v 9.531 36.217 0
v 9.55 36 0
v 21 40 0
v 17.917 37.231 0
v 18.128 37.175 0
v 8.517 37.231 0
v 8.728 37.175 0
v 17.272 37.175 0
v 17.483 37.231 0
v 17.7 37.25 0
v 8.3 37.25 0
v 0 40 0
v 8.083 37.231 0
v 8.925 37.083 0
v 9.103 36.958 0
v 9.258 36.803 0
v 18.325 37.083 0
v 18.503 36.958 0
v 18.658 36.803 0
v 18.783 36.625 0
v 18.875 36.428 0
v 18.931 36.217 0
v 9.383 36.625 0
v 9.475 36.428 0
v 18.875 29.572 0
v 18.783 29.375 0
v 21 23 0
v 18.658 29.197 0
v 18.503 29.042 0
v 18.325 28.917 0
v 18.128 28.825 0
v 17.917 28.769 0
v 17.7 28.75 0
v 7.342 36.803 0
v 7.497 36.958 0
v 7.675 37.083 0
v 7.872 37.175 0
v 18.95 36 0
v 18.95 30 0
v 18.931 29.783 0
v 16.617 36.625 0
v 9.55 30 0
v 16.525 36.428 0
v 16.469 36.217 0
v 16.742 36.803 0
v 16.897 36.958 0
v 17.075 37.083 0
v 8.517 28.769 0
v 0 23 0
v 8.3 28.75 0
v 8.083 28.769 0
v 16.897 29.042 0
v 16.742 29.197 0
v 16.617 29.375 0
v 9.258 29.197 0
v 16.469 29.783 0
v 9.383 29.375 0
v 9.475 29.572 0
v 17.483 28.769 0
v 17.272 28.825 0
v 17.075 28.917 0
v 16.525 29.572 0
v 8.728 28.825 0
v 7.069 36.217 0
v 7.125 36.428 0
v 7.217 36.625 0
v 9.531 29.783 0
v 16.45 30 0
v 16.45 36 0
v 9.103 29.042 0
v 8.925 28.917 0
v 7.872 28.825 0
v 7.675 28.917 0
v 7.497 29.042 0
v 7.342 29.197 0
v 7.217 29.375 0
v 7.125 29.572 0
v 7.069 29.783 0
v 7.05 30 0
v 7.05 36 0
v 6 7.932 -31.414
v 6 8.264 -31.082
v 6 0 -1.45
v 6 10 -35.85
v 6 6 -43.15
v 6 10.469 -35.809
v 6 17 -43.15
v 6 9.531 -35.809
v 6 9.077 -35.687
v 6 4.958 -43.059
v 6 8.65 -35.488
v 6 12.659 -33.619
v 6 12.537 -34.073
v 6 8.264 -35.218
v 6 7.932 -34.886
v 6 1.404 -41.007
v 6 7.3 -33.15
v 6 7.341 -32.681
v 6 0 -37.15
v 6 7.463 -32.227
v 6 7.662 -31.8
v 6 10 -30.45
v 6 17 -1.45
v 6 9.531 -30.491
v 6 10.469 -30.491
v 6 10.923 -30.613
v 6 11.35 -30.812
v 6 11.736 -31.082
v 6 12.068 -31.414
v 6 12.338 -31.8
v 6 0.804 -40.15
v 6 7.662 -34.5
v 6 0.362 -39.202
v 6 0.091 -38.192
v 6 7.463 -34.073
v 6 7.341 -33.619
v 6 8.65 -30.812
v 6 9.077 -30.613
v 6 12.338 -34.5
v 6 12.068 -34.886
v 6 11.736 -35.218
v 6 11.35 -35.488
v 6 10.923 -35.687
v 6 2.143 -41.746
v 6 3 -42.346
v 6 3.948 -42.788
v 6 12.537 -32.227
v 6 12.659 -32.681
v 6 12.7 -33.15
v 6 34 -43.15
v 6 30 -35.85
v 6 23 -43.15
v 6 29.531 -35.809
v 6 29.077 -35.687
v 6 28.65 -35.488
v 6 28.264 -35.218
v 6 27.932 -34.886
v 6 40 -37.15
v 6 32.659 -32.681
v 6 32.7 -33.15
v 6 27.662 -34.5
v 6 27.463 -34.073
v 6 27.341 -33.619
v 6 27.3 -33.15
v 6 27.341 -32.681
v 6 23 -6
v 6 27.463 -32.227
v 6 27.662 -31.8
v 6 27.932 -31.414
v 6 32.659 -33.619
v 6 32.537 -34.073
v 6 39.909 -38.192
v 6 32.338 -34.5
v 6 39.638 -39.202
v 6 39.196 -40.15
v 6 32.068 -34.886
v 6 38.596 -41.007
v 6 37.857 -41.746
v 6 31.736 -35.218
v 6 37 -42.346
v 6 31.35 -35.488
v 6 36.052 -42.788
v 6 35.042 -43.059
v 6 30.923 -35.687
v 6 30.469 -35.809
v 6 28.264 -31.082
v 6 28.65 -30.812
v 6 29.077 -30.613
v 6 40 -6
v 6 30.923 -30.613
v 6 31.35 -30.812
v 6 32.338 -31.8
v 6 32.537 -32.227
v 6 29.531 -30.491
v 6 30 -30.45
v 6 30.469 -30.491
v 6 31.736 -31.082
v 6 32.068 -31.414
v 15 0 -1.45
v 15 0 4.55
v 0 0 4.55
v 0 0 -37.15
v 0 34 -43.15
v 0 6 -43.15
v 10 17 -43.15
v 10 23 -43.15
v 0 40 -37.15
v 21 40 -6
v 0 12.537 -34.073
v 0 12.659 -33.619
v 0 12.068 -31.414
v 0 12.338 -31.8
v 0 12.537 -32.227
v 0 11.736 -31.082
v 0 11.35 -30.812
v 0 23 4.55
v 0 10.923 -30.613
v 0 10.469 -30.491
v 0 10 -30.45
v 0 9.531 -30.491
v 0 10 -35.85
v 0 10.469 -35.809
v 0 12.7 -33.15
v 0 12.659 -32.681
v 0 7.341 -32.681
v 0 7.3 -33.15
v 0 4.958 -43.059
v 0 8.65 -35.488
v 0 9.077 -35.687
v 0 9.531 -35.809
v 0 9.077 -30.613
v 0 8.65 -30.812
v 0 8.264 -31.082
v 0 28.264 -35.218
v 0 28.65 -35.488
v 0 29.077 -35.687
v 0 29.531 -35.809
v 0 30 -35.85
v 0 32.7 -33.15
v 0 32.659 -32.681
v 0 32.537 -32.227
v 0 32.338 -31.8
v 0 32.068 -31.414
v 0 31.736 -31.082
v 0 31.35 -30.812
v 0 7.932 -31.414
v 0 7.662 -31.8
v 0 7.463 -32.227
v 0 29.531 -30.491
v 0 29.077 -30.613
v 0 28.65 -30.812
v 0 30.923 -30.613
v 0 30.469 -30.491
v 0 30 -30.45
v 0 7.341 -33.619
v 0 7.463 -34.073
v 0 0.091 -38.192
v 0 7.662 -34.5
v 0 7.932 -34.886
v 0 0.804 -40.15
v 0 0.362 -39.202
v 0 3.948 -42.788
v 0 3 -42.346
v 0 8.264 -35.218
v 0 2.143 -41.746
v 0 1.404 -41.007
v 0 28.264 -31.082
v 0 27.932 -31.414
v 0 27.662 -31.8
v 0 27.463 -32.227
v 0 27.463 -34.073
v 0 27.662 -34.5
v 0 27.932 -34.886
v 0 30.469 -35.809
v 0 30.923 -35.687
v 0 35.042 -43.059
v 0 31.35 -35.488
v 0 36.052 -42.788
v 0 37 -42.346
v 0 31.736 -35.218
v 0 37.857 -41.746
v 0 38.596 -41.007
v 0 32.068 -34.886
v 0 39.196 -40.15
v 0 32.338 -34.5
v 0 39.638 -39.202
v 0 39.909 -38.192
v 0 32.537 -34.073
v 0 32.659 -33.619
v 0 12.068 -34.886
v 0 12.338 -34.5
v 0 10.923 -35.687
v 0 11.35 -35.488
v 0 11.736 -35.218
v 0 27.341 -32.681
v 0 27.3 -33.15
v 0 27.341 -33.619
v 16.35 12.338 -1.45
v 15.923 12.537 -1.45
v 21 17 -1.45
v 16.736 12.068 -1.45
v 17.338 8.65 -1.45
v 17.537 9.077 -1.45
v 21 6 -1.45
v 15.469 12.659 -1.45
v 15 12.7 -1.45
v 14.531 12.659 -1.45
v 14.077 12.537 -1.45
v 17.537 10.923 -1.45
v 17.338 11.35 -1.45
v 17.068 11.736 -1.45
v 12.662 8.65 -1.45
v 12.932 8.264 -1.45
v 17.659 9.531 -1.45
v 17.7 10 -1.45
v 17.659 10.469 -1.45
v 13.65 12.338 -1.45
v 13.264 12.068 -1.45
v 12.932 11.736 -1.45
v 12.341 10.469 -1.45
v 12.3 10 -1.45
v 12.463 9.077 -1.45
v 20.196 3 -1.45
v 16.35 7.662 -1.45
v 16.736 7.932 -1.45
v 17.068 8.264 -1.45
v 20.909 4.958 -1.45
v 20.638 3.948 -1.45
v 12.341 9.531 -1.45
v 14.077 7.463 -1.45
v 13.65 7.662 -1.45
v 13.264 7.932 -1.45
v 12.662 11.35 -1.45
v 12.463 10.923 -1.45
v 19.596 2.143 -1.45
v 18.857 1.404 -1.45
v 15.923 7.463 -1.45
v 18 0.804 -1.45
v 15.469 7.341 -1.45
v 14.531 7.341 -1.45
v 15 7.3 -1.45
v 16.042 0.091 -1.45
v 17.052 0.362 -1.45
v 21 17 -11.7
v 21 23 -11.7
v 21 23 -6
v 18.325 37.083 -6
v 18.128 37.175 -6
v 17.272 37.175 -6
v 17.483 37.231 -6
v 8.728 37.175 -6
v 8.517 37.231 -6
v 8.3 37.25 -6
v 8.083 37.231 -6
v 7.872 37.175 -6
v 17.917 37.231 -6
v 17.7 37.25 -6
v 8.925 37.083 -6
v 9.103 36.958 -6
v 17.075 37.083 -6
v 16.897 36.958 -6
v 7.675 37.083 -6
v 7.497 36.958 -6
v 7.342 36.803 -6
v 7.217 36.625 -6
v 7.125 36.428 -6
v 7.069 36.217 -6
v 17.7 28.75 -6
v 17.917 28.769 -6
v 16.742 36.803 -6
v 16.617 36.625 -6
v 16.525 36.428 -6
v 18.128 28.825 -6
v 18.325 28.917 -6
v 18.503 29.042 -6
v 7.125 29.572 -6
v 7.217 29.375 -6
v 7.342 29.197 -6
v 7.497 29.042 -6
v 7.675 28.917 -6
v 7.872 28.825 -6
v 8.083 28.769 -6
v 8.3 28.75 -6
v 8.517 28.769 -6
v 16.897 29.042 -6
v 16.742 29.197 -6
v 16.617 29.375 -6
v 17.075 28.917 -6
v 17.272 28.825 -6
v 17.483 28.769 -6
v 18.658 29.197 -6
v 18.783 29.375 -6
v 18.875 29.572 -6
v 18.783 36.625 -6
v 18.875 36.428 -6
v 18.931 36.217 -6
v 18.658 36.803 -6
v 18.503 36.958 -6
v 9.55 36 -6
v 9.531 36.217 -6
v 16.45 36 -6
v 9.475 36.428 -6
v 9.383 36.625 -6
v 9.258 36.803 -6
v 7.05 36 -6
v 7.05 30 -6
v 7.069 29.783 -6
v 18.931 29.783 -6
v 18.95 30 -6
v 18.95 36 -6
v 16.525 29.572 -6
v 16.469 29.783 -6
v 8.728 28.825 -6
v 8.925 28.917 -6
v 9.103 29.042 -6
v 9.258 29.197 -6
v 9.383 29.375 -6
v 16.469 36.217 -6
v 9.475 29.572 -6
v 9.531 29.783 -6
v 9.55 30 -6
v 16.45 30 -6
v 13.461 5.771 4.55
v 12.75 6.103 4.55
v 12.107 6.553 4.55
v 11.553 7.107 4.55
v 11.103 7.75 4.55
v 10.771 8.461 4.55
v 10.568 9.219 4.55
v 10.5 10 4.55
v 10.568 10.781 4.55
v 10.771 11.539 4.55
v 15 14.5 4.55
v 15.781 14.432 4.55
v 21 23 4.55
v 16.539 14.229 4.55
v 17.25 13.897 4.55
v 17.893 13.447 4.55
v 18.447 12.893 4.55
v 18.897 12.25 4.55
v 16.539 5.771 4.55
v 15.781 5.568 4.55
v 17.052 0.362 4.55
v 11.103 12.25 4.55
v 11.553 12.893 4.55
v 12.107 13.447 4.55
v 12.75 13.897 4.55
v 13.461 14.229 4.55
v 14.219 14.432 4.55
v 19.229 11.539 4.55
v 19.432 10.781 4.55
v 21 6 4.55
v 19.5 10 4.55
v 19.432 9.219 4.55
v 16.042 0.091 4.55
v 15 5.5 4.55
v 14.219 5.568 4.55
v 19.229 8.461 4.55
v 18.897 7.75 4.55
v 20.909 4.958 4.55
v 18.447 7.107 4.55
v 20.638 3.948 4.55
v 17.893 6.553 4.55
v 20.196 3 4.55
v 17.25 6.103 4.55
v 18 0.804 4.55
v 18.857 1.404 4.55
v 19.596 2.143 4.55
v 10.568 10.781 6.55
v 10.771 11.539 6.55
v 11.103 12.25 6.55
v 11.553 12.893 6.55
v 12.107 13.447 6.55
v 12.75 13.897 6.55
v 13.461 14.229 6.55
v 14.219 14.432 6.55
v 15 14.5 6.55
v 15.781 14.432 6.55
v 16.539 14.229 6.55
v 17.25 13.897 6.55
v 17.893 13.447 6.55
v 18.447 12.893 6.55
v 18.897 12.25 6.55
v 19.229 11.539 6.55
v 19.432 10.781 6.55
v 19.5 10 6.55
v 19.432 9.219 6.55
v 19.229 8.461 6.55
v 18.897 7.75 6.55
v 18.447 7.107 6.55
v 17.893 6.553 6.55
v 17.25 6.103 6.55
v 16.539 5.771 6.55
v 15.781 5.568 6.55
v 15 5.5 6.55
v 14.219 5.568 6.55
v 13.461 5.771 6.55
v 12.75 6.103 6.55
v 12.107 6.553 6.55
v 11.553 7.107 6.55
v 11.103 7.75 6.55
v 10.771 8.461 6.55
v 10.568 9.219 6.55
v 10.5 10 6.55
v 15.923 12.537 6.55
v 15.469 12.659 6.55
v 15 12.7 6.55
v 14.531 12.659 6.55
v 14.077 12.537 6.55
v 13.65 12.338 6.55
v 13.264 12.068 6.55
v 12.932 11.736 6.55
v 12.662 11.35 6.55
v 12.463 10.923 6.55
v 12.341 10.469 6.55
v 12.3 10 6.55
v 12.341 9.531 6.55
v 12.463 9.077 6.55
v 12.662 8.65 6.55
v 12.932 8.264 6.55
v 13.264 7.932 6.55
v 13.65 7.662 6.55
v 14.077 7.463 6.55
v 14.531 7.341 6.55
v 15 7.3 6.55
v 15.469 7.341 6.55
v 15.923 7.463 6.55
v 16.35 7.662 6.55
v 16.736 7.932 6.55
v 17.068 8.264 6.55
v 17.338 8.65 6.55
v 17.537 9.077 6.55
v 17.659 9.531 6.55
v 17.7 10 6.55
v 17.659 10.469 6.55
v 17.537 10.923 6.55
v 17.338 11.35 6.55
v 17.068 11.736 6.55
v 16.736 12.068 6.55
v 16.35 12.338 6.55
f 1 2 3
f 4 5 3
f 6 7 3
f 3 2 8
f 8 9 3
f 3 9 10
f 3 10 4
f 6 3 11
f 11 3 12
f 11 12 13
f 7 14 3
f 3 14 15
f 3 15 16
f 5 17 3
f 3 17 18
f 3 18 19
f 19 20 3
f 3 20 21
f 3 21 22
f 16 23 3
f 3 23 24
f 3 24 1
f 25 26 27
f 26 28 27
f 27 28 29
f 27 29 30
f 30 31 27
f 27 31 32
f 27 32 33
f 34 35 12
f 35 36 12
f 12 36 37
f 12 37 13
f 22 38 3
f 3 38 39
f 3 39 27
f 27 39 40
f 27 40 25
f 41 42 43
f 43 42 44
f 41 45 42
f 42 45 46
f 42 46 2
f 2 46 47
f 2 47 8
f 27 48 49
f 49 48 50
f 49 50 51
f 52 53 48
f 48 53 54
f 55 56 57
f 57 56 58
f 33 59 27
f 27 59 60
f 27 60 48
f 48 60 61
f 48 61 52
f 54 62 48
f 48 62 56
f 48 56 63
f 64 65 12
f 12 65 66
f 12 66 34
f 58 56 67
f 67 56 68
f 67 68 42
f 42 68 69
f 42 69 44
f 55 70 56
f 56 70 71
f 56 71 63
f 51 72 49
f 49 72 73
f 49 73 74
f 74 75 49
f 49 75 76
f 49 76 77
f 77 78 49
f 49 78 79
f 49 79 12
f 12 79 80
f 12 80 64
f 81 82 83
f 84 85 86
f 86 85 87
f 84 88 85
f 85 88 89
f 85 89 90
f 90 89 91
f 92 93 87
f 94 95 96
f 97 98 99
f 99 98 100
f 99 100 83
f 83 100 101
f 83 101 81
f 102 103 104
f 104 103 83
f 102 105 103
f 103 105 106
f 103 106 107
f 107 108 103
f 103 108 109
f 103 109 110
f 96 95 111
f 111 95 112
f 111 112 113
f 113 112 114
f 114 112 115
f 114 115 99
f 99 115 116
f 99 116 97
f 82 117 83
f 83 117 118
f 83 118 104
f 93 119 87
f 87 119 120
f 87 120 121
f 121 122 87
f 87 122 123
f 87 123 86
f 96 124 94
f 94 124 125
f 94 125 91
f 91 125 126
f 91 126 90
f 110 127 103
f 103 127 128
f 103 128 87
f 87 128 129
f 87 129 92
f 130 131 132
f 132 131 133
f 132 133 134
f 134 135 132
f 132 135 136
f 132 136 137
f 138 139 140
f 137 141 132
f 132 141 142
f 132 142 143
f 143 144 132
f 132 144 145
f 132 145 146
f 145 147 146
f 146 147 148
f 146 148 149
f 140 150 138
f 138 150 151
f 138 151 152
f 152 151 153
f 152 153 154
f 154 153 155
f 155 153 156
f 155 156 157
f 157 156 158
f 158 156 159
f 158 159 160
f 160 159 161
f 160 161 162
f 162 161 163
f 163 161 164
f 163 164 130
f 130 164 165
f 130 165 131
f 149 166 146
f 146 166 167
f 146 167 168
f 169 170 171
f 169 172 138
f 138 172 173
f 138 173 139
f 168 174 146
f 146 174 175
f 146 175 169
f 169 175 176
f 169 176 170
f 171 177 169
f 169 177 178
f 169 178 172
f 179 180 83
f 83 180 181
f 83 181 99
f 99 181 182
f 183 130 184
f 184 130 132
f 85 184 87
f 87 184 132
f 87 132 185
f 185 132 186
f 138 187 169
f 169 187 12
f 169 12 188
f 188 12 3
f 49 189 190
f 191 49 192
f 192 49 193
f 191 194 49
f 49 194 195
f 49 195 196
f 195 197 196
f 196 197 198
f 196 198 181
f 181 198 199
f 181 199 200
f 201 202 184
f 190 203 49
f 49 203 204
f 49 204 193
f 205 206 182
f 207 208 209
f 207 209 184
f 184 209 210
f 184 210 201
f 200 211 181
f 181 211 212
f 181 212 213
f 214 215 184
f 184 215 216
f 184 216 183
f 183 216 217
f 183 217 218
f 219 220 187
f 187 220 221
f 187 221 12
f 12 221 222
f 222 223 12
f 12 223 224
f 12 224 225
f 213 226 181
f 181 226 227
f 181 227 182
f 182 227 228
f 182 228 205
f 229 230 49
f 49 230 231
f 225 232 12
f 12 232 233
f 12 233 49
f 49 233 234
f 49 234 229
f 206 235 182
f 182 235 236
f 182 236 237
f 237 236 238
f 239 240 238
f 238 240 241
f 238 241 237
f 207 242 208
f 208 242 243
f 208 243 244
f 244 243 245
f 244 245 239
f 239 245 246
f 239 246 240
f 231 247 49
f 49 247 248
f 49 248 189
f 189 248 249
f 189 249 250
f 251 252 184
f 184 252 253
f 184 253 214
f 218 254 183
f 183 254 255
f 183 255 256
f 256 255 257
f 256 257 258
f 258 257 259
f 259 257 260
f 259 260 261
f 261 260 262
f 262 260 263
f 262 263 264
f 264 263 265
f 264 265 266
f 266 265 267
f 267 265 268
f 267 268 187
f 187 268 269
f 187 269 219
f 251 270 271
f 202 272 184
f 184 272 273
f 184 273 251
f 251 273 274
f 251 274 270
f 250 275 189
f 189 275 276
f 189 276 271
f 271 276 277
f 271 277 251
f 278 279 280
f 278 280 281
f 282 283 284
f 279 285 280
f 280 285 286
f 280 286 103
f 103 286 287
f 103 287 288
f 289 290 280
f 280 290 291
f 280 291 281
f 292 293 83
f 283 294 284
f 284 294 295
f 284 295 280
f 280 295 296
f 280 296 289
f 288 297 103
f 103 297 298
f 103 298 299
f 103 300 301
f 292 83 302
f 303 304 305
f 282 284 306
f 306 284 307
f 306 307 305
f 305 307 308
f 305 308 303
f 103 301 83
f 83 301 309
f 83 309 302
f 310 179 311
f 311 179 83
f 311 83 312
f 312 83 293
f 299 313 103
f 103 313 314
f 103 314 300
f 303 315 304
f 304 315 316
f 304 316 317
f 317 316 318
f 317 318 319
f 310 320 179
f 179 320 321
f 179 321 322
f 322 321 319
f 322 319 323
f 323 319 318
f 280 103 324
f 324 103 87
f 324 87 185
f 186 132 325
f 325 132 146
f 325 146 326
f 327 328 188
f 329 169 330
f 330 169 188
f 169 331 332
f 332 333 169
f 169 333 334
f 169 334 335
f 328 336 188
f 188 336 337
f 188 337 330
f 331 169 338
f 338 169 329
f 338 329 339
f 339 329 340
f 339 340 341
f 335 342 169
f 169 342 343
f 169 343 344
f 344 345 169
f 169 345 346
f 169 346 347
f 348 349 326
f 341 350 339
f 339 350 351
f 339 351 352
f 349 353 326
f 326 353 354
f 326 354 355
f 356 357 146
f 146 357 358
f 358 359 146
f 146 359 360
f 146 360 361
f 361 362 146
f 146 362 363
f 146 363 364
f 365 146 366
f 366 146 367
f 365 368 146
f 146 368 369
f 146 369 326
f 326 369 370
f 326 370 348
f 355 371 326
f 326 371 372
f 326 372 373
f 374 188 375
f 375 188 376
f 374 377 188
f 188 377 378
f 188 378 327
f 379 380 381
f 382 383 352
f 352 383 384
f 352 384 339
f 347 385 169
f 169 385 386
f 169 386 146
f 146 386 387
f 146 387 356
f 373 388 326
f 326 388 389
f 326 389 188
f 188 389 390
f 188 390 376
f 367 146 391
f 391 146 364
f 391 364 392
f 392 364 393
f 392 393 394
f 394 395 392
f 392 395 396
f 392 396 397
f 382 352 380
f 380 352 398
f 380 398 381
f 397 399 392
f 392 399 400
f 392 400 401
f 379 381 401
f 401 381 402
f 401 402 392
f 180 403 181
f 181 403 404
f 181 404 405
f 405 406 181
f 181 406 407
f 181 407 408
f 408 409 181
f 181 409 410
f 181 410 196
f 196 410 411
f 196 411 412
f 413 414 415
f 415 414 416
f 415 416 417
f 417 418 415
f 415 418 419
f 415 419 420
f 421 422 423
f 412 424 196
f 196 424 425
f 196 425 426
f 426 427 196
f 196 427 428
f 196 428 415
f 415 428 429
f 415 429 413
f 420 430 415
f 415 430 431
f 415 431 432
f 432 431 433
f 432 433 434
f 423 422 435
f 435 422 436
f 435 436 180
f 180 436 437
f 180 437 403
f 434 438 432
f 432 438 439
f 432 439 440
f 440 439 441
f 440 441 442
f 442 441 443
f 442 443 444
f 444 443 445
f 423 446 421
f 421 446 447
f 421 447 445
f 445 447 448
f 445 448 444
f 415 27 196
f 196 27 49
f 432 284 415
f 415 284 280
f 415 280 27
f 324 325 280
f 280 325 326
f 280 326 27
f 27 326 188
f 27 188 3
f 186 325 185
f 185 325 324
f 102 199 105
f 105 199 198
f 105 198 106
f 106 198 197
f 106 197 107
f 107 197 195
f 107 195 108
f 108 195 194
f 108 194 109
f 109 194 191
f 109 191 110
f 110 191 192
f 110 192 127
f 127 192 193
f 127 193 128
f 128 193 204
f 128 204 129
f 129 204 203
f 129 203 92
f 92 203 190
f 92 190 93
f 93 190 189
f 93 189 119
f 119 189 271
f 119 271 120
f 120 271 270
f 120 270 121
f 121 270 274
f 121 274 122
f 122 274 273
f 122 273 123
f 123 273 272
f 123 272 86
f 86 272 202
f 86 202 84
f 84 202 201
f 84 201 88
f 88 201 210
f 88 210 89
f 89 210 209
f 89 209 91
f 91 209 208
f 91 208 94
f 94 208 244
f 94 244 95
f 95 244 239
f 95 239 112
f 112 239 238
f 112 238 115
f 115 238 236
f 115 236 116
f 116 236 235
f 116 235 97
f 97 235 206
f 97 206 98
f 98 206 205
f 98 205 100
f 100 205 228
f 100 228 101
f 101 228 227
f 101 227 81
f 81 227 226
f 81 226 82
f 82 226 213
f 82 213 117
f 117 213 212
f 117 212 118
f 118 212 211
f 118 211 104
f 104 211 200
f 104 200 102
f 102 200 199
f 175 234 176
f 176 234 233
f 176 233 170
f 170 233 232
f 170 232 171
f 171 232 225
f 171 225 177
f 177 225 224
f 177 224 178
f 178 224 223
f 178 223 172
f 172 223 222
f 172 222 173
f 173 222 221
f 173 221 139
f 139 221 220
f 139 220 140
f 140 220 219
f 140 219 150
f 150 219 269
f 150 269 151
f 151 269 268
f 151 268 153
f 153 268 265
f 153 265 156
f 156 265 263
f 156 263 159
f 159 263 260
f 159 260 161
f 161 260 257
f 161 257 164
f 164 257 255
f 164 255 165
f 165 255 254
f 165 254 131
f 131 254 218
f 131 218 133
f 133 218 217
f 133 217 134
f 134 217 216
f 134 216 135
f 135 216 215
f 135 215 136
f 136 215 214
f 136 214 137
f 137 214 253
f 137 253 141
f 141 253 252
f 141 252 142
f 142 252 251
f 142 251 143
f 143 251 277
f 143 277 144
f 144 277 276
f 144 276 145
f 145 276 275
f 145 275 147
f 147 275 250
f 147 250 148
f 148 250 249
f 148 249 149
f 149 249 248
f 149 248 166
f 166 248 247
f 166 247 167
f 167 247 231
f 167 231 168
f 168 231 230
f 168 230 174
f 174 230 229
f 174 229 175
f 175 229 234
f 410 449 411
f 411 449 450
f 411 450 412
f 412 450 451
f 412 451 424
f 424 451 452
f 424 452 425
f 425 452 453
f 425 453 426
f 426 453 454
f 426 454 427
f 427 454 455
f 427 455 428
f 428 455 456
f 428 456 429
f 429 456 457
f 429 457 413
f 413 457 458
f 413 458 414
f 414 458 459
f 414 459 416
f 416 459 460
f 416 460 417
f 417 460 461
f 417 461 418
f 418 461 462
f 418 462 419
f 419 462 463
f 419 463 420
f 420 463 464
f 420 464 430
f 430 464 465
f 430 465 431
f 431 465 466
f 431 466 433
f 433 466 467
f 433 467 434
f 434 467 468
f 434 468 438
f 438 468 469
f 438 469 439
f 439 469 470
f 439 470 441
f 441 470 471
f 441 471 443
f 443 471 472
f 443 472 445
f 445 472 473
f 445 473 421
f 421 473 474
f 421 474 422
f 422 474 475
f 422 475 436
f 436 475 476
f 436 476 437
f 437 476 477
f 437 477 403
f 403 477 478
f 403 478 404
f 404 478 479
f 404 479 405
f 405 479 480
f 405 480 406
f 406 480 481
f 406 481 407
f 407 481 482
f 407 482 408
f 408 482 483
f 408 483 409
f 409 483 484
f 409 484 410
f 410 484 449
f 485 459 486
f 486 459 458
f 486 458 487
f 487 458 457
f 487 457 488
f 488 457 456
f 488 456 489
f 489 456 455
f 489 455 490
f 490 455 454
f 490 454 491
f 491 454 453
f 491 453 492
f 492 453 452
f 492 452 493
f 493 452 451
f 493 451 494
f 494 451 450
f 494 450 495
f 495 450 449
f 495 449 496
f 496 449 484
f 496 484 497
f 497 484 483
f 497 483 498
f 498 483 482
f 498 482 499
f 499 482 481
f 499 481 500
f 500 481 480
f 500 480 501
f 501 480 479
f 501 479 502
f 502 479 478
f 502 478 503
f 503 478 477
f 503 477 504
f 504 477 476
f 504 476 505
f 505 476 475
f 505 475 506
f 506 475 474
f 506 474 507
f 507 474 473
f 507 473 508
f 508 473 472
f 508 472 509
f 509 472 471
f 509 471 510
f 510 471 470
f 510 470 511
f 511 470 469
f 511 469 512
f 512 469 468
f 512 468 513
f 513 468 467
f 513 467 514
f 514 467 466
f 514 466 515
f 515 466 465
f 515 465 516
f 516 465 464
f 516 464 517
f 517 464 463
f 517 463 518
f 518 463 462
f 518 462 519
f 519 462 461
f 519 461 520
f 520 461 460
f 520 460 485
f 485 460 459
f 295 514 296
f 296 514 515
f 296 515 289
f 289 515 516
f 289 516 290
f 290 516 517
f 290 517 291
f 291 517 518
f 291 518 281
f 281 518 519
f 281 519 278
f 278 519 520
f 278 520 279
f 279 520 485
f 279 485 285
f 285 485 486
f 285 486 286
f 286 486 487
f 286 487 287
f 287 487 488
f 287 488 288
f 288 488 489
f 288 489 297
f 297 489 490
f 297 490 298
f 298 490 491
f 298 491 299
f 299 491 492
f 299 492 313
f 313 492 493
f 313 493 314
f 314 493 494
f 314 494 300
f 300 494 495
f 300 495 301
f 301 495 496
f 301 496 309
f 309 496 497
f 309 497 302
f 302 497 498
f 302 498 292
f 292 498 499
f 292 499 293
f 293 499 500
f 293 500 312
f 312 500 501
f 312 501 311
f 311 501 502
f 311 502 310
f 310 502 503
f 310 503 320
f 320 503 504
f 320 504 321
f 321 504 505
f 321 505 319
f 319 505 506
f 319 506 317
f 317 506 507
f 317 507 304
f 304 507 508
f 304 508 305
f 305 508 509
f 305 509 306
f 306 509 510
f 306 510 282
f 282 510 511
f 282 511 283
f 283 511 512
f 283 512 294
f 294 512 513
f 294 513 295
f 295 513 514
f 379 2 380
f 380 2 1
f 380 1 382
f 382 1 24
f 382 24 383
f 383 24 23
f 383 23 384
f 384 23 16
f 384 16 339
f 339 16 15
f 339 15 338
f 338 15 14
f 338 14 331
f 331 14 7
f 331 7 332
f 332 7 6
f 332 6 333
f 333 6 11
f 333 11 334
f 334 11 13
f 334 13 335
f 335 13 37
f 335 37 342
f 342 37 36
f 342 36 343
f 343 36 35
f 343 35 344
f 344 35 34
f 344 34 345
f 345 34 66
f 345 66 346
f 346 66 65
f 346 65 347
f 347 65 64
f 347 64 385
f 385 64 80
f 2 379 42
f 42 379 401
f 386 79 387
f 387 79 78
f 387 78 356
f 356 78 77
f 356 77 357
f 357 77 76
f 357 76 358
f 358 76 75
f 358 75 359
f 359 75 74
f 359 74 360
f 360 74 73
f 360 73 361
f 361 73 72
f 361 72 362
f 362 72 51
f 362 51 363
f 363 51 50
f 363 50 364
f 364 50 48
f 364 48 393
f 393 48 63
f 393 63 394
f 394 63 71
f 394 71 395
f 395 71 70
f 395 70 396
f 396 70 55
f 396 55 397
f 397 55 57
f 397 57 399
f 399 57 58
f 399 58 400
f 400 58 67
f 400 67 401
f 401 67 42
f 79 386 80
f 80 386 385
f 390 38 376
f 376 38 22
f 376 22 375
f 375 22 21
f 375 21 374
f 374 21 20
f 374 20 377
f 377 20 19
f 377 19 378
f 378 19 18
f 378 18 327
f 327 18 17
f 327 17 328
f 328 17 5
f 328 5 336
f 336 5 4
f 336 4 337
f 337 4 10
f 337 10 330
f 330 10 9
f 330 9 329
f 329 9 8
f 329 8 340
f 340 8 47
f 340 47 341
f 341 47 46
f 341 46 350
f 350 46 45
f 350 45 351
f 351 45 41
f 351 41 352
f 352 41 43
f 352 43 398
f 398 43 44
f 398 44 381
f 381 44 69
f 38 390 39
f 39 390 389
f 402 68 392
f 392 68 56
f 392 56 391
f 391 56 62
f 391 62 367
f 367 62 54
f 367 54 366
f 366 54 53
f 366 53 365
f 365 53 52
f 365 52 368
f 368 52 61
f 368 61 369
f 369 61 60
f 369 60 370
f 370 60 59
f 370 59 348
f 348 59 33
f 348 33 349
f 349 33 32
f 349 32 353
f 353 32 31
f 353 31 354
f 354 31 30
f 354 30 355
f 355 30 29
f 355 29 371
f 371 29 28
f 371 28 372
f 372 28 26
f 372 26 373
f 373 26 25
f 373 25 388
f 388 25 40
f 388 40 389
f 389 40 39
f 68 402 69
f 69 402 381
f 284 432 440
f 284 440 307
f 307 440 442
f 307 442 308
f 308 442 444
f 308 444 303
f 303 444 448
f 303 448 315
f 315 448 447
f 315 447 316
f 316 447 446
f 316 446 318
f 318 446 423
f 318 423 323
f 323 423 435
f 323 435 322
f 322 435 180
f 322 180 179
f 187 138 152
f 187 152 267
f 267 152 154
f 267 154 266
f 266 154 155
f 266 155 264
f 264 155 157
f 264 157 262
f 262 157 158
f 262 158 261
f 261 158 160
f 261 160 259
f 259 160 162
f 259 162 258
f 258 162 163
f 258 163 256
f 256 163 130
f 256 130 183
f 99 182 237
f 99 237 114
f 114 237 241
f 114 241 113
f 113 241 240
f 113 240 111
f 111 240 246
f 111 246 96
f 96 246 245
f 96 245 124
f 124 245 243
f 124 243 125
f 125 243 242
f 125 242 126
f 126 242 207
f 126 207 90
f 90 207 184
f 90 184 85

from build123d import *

# Parameters (mm, degrees)
SKETCH1_W             = 43.15
SKETCH1_H             = 40
BOSS_EXTRUDE1_DEPTH   = 6
BOSS_EXTRUDE2_DEPTH   = 21
CHAMFER1_SIZE         = 11
CHAMFER1_SIZE2        = 31.45
F_5_4MM_DOWEL_HOLE1_D = 5.4
SKETCH8_R             = 4.5
BOSS_EXTRUDE3_DEPTH   = 2
F_5_4MM_DOWEL_HOLE2_D = 5.4
CUT_EXTRUDE1_DEPTH    = 44.15
FILLET1_R             = 6
FILLET2_R             = 6


with BuildPart() as part:
    # Sketch1 → Boss-Extrude1 (new body)
    with BuildSketch(Plane(origin=(0, 0, 0), x_dir=(0, 0, -1), z_dir=(1, 0, 0))):
        with Locations((21.575, 20)):
            Rectangle(SKETCH1_W, SKETCH1_H)
    extrude(amount=BOSS_EXTRUDE1_DEPTH)

    # Sketch2 → Boss-Extrude2 (add)
    with BuildSketch(Plane(origin=(0, 0, 0), x_dir=(0, 0, -1), z_dir=(1, 0, 0))):
        Polygon((-4.55, 23), (0, 23), (0, 40), (6, 40), (6, 23), (43.15, 23), (43.15, 17), (1.45, 17), (1.45, 0), (-4.55, 0), align=None)
    extrude(amount=BOSS_EXTRUDE2_DEPTH)

    # Chamfer1
    chamfer1_edges = [part.edges().sort_by_distance(p)[0] for p in [
        (21, 20, -43.15),
    ]]
    chamfer1_side = [part.faces().sort_by_distance(p)[0] for p in [
        (5.863636364, 20, -43.15),
    ]]
    chamfer(chamfer1_edges, length=CHAMFER1_SIZE, length2=CHAMFER1_SIZE2, reference=chamfer1_side[0])

    # Ø5.4mm Dowel Hole1 (through all)
    with Locations(Plane.ZY):
        with Locations((-33.15, 30), (-33.15, 10)):
            Hole(F_5_4MM_DOWEL_HOLE1_D / 2)

    # Sketch8 → Boss-Extrude3 (add)
    with BuildSketch(Plane.XY.offset(4.55)):
        with Locations((15, 10)):
            Circle(SKETCH8_R)
    extrude(amount=BOSS_EXTRUDE3_DEPTH)

    # Ø5.4mm Dowel Hole2 (through all)
    with Locations(Plane.XY.offset(6.55)):
        with Locations((15, 10)):
            Hole(F_5_4MM_DOWEL_HOLE2_D / 2)

    # Sketch11 → Cut-Extrude1 (cut, through all)
    with BuildSketch(Plane.XY):
        with BuildLine():
            Line((18.95, 36), (18.95, 30))
            ThreePointArc((18.95, 30), (17.7, 28.75), (16.45, 30))
            Line((16.45, 30), (16.45, 36))
            ThreePointArc((16.45, 36), (17.7, 37.25), (18.95, 36))
        make_face()
        with BuildLine():
            Line((9.55, 36), (9.55, 30))
            ThreePointArc((9.55, 30), (8.3, 28.75), (7.05, 30))
            Line((7.05, 30), (7.05, 36))
            ThreePointArc((7.05, 36), (8.3, 37.25), (9.55, 36))
        make_face()
    extrude(amount=-CUT_EXTRUDE1_DEPTH, mode=Mode.SUBTRACT)

    # Fillet1
    fillet1_edges = [part.edges().sort_by_distance(p)[0] for p in [
        (21, 0, 1.55),
    ]]
    fillet(fillet1_edges, radius=FILLET1_R)

    # Fillet2
    fillet2_edges = [part.edges().sort_by_distance(p)[0] for p in [
        (3, 0, -43.15),
        (3, 40, -43.15),
    ]]
    fillet(fillet2_edges, radius=FILLET2_R)


solid = part.part
